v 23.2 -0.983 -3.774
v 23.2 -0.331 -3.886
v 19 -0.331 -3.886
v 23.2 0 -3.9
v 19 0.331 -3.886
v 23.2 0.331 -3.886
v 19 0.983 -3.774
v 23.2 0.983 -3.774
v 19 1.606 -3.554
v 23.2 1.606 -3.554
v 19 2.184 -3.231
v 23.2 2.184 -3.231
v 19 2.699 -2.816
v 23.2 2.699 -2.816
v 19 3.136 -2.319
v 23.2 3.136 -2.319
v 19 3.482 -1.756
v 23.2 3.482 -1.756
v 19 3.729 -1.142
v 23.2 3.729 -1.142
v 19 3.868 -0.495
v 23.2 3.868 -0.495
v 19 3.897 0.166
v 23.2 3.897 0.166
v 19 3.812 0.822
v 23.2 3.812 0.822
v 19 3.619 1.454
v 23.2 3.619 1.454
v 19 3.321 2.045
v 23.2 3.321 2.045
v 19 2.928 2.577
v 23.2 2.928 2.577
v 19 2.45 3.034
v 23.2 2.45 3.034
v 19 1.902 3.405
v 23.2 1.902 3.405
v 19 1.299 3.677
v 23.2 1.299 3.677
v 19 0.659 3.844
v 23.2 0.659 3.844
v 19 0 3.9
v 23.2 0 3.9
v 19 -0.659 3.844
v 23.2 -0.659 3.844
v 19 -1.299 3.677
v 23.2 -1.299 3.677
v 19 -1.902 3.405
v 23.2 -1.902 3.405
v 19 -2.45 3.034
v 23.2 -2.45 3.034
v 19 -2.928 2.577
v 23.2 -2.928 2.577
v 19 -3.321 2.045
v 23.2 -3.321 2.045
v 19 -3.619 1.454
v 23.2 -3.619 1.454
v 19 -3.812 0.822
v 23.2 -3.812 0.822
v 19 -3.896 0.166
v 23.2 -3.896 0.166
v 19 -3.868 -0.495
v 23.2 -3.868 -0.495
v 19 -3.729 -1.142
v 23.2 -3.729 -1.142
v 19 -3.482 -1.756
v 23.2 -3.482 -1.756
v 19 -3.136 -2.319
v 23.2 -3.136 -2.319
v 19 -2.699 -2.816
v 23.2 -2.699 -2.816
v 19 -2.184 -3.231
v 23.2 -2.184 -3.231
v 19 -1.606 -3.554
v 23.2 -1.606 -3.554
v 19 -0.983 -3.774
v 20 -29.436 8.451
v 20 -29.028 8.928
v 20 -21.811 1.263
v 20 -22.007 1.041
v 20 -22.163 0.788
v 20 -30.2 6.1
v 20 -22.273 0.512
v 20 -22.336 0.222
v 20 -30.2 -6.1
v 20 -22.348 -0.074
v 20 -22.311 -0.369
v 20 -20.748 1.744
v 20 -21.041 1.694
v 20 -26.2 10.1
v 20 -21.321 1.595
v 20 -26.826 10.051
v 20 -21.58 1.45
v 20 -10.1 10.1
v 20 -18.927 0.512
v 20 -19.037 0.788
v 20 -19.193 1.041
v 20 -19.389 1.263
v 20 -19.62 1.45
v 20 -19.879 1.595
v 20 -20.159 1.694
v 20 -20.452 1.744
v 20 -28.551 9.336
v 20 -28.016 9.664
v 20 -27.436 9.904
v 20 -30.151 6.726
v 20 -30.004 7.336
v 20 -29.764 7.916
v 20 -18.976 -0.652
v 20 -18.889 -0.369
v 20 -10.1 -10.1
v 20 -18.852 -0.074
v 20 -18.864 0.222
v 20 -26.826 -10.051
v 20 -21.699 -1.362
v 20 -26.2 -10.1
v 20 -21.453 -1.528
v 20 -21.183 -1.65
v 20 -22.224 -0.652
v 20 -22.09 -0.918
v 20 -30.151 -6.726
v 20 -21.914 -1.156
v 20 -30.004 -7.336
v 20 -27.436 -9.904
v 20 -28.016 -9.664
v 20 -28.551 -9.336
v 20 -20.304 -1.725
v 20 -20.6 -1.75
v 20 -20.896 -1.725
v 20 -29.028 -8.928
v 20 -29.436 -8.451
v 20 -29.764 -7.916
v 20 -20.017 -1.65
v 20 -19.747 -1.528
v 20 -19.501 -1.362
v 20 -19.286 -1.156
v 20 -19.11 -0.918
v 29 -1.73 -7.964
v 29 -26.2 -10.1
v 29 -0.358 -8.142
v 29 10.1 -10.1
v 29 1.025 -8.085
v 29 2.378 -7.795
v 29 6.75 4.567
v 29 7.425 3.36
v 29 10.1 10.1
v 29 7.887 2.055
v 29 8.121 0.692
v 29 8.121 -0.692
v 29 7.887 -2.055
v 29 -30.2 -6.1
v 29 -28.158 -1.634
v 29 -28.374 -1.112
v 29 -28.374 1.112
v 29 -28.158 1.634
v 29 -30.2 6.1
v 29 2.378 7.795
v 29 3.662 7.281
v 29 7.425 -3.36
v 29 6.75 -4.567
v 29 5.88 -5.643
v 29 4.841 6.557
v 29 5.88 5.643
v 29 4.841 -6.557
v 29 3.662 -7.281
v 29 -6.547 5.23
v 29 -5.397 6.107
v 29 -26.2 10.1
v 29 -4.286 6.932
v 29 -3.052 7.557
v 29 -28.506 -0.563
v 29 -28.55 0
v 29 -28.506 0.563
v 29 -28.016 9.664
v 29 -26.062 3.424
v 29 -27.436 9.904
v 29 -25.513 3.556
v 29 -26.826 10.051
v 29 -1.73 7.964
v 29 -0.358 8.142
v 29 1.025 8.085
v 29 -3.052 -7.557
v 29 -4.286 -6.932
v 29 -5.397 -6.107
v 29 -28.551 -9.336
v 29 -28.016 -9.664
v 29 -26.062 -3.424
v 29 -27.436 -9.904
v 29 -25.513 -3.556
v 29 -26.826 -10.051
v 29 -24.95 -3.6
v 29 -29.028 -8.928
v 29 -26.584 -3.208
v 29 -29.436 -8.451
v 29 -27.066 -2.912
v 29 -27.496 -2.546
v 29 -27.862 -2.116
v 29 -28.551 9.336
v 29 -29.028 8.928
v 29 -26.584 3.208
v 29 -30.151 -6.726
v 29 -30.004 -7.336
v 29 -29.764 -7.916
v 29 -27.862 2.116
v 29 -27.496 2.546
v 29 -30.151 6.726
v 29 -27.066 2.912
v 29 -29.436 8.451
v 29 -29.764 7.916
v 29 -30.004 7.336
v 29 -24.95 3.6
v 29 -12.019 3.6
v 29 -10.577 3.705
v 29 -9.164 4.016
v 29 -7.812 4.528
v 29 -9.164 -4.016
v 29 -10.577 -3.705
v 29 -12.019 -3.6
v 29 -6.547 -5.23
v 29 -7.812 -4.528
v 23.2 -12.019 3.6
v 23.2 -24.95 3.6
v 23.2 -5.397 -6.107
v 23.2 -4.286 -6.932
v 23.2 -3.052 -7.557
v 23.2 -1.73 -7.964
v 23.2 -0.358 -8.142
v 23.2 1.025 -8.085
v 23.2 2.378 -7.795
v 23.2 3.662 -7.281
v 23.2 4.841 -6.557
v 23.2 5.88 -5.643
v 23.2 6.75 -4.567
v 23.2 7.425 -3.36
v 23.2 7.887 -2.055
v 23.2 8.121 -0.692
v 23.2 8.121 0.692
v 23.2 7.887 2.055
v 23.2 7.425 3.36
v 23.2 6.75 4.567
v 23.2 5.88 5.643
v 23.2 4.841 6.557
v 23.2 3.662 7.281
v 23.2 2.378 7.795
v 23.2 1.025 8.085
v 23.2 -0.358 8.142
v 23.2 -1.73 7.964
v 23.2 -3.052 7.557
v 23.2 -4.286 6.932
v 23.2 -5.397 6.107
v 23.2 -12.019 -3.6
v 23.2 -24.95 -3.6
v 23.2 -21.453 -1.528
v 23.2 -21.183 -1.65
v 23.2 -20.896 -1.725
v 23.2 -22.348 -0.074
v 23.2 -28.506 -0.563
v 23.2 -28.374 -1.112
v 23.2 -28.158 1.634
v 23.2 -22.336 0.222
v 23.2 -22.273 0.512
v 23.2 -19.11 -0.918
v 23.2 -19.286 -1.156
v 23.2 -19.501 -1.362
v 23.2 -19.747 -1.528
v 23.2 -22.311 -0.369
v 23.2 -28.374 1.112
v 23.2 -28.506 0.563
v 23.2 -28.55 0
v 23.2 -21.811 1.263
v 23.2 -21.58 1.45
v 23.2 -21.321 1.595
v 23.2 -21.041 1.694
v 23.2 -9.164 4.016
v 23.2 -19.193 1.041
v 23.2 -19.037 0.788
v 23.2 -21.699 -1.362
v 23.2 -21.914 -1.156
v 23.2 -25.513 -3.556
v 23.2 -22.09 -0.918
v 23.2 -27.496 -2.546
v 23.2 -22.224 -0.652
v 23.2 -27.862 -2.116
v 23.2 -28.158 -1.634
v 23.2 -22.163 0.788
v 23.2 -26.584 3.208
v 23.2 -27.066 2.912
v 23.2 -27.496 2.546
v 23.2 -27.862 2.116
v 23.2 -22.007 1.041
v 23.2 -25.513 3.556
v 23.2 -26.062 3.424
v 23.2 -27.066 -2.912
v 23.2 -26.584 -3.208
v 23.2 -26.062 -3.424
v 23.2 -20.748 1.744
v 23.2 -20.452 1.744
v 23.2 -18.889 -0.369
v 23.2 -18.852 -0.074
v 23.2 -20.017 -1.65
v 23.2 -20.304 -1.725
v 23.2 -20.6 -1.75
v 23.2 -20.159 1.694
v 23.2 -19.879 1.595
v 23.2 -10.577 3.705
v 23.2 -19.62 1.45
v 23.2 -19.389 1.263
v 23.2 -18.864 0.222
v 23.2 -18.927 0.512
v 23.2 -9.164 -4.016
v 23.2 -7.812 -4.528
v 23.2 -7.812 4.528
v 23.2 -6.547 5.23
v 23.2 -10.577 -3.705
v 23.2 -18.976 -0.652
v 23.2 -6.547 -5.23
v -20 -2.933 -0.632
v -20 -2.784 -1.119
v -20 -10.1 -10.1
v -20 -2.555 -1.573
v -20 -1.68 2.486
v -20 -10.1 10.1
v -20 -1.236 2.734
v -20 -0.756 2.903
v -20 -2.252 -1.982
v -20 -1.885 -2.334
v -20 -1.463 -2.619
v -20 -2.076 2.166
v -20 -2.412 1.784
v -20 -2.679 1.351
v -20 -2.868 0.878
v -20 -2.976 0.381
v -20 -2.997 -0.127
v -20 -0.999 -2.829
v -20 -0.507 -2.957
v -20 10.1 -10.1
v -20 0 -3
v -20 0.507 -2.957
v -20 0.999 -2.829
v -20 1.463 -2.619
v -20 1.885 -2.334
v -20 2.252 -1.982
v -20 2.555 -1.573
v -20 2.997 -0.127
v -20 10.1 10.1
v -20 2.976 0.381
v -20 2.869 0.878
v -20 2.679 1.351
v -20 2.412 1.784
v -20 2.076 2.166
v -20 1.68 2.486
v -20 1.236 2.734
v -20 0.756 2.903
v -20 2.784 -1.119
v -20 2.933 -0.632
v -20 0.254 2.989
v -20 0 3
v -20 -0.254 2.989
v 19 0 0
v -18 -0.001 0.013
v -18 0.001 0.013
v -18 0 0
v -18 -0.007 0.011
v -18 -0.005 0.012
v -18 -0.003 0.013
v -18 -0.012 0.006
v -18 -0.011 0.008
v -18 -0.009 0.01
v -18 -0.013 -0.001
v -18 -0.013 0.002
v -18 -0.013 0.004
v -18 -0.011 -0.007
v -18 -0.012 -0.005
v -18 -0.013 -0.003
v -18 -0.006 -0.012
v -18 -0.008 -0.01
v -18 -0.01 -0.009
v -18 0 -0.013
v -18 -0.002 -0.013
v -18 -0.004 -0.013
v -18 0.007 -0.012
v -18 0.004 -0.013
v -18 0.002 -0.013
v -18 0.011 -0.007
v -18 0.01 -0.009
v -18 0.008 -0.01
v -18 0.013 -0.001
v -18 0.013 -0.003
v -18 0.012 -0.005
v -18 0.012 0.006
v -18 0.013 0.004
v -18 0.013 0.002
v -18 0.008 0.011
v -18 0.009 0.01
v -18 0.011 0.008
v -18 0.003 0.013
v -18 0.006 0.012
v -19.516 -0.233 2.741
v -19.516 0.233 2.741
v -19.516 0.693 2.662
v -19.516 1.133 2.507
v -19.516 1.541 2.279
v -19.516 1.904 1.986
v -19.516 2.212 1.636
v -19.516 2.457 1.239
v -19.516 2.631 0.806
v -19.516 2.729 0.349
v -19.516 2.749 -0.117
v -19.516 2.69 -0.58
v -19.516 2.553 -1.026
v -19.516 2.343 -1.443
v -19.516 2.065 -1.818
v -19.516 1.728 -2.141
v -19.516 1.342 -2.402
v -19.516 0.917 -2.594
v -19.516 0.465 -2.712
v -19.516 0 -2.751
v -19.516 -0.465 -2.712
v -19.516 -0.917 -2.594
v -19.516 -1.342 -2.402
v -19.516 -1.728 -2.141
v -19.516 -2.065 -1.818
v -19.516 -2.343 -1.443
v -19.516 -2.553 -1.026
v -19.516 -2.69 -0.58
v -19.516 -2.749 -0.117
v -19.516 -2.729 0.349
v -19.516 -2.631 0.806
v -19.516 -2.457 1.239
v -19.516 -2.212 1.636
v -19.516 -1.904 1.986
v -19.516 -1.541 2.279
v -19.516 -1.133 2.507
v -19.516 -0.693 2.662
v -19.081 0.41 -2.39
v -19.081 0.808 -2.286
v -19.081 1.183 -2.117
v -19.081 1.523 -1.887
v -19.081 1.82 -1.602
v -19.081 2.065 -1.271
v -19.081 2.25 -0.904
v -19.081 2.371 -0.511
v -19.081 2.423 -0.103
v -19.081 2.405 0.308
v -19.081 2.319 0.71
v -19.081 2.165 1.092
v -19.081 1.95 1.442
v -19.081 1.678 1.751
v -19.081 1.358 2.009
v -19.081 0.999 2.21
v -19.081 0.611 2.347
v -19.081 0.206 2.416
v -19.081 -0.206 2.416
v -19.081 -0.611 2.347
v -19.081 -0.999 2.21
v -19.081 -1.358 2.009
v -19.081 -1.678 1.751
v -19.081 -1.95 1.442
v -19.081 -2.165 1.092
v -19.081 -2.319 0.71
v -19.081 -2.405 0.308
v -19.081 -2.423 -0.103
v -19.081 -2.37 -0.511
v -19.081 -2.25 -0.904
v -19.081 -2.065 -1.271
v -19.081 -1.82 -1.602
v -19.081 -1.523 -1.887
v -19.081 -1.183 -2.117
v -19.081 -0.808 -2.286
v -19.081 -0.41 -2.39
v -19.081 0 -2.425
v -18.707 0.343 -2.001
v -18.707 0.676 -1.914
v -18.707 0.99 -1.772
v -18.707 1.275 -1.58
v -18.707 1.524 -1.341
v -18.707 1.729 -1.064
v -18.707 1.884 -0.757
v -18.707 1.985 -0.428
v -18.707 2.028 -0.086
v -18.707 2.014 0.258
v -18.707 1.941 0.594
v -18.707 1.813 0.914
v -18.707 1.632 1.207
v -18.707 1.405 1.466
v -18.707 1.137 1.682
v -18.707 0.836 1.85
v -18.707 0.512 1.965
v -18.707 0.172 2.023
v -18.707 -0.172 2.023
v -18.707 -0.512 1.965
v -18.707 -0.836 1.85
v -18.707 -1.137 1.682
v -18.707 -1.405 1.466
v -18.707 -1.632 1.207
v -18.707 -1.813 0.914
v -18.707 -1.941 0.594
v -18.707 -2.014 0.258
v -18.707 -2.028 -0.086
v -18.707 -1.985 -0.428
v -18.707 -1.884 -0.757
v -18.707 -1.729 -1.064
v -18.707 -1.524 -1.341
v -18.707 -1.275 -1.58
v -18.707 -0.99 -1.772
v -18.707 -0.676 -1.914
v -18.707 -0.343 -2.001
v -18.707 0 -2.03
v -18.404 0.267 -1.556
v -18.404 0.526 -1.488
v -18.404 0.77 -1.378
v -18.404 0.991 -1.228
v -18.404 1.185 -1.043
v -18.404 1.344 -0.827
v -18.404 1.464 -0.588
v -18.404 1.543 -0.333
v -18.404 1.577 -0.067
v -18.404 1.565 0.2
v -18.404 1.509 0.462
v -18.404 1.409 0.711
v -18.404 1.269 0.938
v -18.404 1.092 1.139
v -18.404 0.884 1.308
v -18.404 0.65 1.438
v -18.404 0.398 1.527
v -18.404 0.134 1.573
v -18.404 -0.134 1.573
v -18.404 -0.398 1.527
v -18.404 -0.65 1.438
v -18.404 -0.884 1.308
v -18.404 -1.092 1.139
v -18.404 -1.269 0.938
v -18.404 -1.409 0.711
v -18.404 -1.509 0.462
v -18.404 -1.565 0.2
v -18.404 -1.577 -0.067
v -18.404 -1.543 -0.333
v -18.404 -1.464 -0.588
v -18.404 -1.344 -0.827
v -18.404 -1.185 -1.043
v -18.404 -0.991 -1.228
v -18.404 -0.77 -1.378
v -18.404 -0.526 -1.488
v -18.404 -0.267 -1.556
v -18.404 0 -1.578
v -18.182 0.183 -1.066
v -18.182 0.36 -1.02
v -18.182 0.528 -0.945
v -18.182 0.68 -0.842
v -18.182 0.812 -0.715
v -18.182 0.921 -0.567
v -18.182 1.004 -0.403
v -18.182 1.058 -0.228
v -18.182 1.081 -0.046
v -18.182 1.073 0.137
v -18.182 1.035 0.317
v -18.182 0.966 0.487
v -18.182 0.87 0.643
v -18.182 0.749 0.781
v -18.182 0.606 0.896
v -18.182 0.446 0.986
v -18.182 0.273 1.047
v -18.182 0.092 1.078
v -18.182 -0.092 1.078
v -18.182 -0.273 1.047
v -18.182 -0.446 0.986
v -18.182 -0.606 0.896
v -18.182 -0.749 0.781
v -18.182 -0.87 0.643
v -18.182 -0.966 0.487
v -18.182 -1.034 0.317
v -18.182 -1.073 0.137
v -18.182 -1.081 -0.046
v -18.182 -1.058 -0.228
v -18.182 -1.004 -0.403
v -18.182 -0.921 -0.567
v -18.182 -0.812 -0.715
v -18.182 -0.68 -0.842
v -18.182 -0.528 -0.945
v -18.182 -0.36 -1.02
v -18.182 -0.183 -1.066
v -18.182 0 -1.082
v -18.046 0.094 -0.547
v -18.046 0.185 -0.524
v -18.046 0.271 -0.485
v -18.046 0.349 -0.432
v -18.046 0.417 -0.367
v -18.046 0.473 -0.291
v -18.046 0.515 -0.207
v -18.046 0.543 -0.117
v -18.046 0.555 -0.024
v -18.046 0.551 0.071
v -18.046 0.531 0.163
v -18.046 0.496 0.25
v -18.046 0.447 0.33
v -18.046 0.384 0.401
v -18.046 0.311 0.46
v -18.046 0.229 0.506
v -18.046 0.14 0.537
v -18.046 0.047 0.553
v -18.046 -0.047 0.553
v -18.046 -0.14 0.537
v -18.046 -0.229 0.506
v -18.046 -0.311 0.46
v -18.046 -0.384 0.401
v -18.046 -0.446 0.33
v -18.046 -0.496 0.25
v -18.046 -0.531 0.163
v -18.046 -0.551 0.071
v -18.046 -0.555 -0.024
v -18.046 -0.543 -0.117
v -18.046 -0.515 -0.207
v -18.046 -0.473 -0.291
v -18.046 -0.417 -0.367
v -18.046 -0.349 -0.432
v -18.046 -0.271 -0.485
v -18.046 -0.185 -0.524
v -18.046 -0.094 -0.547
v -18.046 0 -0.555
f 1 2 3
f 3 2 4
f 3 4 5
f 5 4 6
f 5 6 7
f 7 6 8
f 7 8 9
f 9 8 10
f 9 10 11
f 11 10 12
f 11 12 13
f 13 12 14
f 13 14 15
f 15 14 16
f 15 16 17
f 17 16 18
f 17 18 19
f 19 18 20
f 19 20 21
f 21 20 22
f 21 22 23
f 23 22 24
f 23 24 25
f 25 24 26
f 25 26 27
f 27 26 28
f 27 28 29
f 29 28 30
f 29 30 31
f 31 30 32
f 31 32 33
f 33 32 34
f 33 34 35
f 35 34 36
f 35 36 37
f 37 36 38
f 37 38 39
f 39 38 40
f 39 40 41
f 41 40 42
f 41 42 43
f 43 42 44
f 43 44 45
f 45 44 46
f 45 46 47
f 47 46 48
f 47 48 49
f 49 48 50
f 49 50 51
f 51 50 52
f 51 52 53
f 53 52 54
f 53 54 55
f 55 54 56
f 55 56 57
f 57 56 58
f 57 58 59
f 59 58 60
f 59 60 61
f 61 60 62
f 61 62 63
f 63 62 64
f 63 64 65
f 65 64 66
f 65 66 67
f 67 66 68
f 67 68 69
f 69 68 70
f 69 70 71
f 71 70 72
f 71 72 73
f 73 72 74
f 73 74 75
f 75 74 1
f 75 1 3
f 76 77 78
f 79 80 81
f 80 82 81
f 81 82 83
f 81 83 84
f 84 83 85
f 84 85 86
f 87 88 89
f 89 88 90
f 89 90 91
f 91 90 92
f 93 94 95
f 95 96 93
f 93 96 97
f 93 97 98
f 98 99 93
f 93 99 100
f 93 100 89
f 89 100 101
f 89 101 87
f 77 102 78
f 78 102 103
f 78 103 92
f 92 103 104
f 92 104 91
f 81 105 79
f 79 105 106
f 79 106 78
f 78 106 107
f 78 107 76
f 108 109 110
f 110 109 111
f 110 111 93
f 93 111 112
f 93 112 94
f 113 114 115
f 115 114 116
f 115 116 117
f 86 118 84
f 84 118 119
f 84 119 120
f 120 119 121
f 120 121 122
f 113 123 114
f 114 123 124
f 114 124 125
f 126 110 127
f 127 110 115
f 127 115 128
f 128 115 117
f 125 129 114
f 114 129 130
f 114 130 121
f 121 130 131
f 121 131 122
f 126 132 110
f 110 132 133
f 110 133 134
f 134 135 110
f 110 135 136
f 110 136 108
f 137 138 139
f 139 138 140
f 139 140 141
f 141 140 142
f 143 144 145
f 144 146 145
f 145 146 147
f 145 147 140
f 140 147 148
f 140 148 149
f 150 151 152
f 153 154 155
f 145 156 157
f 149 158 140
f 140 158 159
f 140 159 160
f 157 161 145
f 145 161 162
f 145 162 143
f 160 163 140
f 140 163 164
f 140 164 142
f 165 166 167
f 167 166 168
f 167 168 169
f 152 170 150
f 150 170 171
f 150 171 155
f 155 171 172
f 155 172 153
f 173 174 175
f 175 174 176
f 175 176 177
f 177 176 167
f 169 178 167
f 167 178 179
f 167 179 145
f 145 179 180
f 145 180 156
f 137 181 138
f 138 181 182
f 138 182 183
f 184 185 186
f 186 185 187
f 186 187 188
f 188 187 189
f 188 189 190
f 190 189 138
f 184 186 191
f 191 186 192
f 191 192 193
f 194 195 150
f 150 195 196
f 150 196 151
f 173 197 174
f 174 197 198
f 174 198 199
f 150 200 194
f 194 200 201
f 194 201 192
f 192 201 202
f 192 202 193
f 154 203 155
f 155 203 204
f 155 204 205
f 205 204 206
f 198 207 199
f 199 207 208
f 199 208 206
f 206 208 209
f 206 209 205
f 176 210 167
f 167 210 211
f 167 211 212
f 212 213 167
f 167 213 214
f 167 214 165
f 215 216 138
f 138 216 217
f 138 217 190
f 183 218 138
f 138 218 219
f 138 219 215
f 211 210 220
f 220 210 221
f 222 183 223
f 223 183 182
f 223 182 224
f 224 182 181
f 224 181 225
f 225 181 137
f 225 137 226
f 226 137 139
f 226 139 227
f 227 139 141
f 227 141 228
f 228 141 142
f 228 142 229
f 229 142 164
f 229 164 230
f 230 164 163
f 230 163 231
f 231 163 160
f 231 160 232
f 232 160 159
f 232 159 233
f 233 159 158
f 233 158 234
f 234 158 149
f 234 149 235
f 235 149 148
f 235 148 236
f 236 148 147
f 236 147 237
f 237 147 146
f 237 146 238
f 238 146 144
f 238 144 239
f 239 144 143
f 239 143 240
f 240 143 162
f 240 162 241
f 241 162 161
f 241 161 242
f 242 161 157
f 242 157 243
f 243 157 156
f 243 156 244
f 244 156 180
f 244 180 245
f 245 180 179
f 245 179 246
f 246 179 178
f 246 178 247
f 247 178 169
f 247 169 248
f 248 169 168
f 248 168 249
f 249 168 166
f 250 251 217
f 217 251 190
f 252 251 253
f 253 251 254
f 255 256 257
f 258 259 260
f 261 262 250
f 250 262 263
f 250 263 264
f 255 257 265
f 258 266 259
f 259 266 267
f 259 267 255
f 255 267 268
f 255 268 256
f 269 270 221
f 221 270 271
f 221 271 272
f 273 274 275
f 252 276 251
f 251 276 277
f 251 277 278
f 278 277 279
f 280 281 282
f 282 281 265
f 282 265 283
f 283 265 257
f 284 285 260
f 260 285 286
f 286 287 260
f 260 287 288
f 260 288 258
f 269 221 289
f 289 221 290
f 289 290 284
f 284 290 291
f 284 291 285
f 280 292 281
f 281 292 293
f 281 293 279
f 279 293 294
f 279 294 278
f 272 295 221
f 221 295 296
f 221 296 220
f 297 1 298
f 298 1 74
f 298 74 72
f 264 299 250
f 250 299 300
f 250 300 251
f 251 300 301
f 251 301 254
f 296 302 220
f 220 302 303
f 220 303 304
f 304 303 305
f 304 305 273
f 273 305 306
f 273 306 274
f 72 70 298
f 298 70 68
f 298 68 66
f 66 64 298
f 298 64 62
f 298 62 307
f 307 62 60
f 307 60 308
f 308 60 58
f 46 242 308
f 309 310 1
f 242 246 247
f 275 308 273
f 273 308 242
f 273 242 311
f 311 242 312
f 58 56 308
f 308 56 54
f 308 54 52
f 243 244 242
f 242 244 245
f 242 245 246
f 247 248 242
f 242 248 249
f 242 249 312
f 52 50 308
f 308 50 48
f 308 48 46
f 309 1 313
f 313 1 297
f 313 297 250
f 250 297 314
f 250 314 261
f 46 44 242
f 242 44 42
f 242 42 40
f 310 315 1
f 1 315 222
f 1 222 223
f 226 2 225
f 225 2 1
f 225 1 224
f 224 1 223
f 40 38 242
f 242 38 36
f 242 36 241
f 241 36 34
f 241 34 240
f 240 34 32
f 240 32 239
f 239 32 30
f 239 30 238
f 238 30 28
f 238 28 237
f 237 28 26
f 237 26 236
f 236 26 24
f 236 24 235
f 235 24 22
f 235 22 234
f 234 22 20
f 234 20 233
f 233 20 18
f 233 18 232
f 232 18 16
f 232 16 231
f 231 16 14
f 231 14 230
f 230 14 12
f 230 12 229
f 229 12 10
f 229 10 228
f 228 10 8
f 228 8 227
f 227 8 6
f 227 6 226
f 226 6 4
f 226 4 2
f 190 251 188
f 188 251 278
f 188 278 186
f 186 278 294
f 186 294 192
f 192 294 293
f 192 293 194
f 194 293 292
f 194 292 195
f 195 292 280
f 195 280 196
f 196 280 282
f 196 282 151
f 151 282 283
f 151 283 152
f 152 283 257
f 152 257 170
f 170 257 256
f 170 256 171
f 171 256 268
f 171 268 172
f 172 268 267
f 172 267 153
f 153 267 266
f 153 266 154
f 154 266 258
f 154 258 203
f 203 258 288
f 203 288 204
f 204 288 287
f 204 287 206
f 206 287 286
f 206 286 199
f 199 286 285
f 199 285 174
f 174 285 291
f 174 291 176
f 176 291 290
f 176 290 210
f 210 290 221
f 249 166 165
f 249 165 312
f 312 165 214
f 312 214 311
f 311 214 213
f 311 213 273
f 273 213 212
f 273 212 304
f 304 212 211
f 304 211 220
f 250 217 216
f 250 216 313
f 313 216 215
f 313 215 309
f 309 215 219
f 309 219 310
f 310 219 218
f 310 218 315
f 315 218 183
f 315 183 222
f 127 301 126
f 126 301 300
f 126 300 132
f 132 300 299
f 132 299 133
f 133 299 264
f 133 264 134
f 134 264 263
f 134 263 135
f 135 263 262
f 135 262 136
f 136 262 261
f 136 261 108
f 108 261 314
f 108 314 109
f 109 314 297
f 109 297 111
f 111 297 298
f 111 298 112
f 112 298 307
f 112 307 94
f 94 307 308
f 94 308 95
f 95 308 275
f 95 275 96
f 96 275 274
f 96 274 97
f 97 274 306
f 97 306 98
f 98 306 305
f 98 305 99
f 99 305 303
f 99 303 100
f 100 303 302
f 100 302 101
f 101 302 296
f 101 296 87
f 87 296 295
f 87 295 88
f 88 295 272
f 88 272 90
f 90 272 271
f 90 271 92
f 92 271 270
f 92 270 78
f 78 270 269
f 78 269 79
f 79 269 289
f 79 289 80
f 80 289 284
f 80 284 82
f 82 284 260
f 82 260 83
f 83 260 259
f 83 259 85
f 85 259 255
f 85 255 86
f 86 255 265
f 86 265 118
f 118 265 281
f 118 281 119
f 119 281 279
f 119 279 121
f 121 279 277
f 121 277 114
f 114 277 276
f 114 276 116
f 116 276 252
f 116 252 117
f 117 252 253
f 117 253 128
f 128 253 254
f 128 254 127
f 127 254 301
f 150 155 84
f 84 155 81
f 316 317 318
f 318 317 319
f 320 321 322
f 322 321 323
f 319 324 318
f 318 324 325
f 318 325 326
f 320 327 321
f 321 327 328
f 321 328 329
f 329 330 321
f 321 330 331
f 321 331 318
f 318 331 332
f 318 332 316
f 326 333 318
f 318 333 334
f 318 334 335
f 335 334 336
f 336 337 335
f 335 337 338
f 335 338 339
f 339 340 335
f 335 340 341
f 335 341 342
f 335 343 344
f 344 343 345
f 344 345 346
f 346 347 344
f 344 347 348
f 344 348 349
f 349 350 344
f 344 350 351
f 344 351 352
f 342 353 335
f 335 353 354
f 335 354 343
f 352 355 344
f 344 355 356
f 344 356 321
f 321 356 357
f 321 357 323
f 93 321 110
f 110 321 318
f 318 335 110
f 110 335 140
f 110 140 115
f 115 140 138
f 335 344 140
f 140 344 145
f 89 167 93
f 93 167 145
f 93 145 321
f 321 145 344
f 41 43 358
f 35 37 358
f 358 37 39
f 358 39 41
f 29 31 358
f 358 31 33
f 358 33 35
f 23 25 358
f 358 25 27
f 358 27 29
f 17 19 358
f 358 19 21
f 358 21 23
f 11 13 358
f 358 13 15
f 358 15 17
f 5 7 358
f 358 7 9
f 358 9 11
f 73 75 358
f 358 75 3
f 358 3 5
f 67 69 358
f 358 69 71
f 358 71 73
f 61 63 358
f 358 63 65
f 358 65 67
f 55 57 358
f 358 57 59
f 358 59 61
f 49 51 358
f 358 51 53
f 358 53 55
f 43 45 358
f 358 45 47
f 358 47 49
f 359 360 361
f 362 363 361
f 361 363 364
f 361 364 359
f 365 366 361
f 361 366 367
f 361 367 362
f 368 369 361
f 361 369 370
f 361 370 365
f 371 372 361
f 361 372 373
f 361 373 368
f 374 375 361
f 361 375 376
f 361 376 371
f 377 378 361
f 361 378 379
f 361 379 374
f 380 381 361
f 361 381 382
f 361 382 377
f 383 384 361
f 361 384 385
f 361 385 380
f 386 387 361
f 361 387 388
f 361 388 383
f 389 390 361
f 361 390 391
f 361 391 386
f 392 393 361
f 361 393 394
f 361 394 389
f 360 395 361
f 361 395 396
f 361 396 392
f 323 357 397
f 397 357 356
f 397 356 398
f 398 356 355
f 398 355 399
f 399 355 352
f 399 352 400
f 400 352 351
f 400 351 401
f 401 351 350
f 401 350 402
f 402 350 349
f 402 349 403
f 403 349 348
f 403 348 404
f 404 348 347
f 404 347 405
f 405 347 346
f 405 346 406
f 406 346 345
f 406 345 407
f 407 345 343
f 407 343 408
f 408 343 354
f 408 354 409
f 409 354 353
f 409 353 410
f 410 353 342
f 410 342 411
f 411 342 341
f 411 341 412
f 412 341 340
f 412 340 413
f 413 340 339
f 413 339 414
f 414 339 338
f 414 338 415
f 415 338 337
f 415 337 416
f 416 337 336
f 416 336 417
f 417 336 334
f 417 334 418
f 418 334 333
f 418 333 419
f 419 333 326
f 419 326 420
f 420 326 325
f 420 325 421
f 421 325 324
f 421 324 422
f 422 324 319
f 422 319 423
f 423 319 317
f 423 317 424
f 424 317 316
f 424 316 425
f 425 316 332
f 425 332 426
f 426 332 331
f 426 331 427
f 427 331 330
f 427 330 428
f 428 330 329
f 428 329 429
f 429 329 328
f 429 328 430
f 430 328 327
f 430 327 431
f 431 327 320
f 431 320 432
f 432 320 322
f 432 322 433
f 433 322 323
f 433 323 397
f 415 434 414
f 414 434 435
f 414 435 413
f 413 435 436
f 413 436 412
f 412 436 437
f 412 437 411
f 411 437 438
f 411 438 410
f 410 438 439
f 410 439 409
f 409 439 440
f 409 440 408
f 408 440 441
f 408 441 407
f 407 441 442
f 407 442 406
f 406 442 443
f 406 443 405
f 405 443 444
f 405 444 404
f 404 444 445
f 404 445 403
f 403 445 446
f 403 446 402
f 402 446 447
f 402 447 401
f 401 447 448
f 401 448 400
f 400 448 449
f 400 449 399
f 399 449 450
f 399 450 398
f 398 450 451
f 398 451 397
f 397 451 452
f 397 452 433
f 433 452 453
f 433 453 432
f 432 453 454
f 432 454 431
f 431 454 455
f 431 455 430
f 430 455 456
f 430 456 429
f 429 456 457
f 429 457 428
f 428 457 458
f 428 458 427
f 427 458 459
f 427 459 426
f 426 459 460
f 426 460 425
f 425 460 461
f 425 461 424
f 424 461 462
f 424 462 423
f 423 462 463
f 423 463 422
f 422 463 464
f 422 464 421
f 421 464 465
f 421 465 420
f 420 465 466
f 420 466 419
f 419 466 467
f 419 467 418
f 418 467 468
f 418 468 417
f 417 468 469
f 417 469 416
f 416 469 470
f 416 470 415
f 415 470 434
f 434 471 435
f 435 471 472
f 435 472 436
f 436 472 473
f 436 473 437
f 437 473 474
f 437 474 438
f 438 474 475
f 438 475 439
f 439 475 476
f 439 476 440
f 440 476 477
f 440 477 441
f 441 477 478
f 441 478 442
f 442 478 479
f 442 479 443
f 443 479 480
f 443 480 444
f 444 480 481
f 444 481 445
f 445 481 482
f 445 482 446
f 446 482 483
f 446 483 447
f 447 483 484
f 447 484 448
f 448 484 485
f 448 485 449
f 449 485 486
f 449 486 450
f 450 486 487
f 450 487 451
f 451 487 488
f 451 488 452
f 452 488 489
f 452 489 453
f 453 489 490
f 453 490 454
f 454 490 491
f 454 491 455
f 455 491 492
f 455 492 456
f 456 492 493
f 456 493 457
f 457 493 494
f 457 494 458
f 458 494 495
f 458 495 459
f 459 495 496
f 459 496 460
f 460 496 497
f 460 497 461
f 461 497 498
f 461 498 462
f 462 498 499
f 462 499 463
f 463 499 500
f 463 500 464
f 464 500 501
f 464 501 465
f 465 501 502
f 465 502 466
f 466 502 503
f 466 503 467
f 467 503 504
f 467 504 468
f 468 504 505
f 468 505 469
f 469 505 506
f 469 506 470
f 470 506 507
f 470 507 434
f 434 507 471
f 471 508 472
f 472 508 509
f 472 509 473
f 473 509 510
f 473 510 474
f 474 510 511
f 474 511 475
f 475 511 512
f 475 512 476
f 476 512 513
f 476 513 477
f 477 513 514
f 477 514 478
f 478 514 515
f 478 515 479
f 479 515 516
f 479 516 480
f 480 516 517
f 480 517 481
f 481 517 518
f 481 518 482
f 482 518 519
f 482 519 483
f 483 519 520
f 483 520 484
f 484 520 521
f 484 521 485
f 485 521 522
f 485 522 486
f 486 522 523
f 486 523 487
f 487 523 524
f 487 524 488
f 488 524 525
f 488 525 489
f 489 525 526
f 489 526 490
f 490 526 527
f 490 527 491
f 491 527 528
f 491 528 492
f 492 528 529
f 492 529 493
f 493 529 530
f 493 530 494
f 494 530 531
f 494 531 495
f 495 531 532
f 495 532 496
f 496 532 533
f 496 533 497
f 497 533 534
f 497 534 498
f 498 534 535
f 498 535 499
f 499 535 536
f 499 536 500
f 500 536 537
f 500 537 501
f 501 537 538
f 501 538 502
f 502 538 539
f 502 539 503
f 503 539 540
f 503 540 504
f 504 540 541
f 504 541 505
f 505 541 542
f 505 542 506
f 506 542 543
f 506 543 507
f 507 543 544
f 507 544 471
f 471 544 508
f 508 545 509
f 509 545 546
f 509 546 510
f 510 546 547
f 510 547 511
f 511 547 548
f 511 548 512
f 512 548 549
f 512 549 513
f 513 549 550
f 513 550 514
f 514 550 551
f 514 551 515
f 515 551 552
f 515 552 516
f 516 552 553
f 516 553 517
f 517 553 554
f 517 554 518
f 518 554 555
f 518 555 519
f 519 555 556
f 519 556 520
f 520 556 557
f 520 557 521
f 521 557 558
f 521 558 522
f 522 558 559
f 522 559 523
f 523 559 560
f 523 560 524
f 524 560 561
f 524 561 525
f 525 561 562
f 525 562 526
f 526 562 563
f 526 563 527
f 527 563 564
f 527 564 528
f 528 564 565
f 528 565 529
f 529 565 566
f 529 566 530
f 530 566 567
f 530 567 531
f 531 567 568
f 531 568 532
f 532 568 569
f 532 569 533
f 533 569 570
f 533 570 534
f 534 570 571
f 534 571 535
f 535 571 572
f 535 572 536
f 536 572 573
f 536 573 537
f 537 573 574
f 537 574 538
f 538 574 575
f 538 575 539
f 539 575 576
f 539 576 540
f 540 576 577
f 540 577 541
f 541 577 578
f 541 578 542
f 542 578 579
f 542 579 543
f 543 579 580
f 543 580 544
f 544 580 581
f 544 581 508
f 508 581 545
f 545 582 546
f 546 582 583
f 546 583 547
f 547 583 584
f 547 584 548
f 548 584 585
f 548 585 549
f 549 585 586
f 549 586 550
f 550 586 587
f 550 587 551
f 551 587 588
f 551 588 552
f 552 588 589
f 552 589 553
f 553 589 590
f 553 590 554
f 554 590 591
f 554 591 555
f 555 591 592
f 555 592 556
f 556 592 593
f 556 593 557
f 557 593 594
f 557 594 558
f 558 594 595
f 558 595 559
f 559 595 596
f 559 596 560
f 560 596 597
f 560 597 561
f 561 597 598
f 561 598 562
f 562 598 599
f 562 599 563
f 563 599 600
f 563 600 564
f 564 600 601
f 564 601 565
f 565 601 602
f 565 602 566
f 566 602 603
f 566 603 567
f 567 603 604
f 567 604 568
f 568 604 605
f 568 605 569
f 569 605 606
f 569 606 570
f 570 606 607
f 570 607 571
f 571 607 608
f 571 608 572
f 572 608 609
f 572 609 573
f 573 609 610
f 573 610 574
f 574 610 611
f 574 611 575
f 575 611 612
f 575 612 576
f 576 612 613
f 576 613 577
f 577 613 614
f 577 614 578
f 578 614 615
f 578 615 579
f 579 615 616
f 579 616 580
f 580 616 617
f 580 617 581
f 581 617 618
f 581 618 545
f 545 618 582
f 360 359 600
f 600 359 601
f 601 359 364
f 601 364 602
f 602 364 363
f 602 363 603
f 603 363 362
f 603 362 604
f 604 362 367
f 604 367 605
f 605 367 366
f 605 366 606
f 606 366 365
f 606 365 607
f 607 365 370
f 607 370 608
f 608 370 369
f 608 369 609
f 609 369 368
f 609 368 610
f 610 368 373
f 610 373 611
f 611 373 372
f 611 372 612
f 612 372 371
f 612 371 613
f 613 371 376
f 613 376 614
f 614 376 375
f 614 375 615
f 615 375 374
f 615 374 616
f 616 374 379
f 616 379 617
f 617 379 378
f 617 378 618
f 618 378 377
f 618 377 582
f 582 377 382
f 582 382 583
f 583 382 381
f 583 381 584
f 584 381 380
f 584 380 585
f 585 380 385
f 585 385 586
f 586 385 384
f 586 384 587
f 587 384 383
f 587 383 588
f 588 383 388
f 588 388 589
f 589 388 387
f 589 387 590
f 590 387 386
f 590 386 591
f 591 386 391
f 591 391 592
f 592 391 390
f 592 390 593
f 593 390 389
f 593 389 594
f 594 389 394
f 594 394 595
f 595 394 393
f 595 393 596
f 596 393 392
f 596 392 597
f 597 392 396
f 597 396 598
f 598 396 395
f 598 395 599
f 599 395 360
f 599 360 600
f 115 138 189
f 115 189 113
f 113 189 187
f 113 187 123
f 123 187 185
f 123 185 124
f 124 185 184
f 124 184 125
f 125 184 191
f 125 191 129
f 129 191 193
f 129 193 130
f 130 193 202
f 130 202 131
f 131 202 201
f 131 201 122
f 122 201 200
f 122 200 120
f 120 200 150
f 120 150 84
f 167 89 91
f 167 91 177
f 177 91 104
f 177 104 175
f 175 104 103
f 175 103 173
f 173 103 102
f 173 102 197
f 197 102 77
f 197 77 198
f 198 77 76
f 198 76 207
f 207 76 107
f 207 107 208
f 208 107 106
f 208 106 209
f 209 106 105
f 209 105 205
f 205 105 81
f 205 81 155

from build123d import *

# Parameters (mm, degrees)
SKETCH1_W           = 20
SKETCH1_H           = 20
BOSS_EXTRUDE1_DEPTH = 20
SKETCH2_W           = 45
SKETCH2_H           = 70
BOSS_EXTRUDE2_DEPTH = 9
CUT_EXTRUDE1_DEPTH  = 5.8
FILLET1_R           = 3.6
FILLET2_R           = 10
SKETCH5_R           = 3.9
CUT_EXTRUDE2_DEPTH  = 51.717354032
CUT_EXTRUDE3_REACH  = 49.639
SKETCH6_R           = 1.75
SKETCH7_W           = 9
SKETCH7_H           = 45
CUT_EXTRUDE4_DEPTH  = 4.8
SKETCH9_W           = 9
SKETCH9_H           = 45
CUT_EXTRUDE5_DEPTH  = 23.8
SKETCH10_W          = 12.5
SKETCH10_H          = 41.4
CUT_EXTRUDE6_DEPTH  = 23.8
SKETCH11_W          = 20
SKETCH11_H          = 1.2
CUT_EXTRUDE7_DEPTH  = 23.8
BOSS_EXTRUDE3_START = 20
SKETCH12_W          = 20
SKETCH12_H          = 20
SKETCH12_R          = 3.9
BOSS_EXTRUDE3_DEPTH = 20
SKETCH13_W          = 20.2
SKETCH13_H          = 20.2
SKETCH13_R          = 3.9
BOSS_EXTRUDE4_DEPTH = 40
SKETCH14_W          = 9
SKETCH14_H          = 20
BOSS_EXTRUDE5_DEPTH = 0.1
SKETCH15_W          = 9
SKETCH15_H          = 40.3
BOSS_EXTRUDE6_DEPTH = 0.1
SKETCH16_W          = 9
SKETCH16_H          = 40.3
BOSS_EXTRUDE7_DEPTH = 0.1
SKETCH17_R          = 4.83091966
BOSS_EXTRUDE8_DEPTH = 39
SKETCH18_R          = 3
CUT_EXTRUDE8_DEPTH  = 2
FILLET3_R           = 3.23
FILLET4_R           = 4


# Some blends are built 0.0001 mm under size
with BuildPart() as part:
    # Sketch1 → Boss-Extrude1 (new body)
    with BuildSketch(Plane(origin=(0, 0, 0), x_dir=(0, 0, -1), z_dir=(1, 0, 0))):
        Rectangle(SKETCH1_W, SKETCH1_H)
    extrude(amount=BOSS_EXTRUDE1_DEPTH)

    # Sketch2 → Boss-Extrude2 (add)
    with BuildSketch(Plane(origin=(20, 0, 0), x_dir=(0, 0, -1), z_dir=(1, 0, 0))):
        Rectangle(SKETCH2_W, SKETCH2_H)
    extrude(amount=BOSS_EXTRUDE2_DEPTH)

    # Sketch4 → Cut-Extrude1 (cut)
    with BuildSketch(Plane(origin=(29, 0, 0), x_dir=(0, 0, -1), z_dir=(1, 0, 0))):
        with BuildLine():
            Line((3.6, -28.55), (-3.6, -28.55))
            Line((-3.6, -28.55), (-3.6, -7.311805523))
            ThreePointArc((-3.6, -7.311805523), (0, 8.15), (3.6, -7.311805523))
            Line((3.6, -7.311805523), (3.6, -28.55))
        make_face()
    extrude(amount=-CUT_EXTRUDE1_DEPTH, mode=Mode.SUBTRACT)

    # Fillet1
    fillet1_edges = [part.edges().sort_by_distance(p)[0] for p in [
        (26.1, -28.55, 3.6),
        (26.1, -28.55, -3.6),
    ]]
    fillet(fillet1_edges, radius=FILLET1_R - 0.0001)  # a hair under: the kernel refuses the full size

    # Fillet2
    fillet2_edges = [part.edges().sort_by_distance(p)[0] for p in [
        (26.1, -7.311805523, 3.6),
        (26.1, -7.311805523, -3.6),
    ]]
    fillet(fillet2_edges, radius=FILLET2_R)

    # Sketch5 → Cut-Extrude2 (cut, through all)
    with BuildSketch(Plane.ZY):
        Circle(SKETCH5_R)
    extrude(amount=-CUT_EXTRUDE2_DEPTH, mode=Mode.SUBTRACT)

    # Sketch6 → Cut-Extrude3 (cut, up to next)
    with BuildSketch(Plane(origin=(23.2, 0, 0), x_dir=(0, 0, -1), z_dir=(1, 0, 0)), mode=Mode.PRIVATE) as cut_extrude3_sk1:
        with Locations((0, -20.6)):
            Circle(SKETCH6_R)
    cut_extrude3_tool1 = extrude(cut_extrude3_sk1.sketch, amount=-CUT_EXTRUDE3_REACH, mode=Mode.PRIVATE) & part.part
    add(cut_extrude3_tool1.solids().sort_by_distance((23.2, -20.6, 0))[0], mode=Mode.SUBTRACT)

    # Sketch7 → Cut-Extrude4 (cut)
    with BuildSketch(Plane.XZ.offset(35)):
        with Locations((24.5, 0)):
            Rectangle(SKETCH7_W, SKETCH7_H)
    extrude(amount=-CUT_EXTRUDE4_DEPTH, mode=Mode.SUBTRACT)

    # Sketch9 → Cut-Extrude5 (cut)
    with BuildSketch(Plane(origin=(0, 35, 0), x_dir=(1, 0, 0), z_dir=(0, 1, 0))):
        with Locations((24.5, 0)):
            Rectangle(SKETCH9_W, SKETCH9_H)
    extrude(amount=-CUT_EXTRUDE5_DEPTH, mode=Mode.SUBTRACT)

    # Sketch10 → Cut-Extrude6 (cut)
    with BuildSketch(Plane.ZY.offset(-20)):
        with Locations((-16.25, -9.5)):
            Rectangle(SKETCH10_W, SKETCH10_H)
        with Locations((16.25, -9.5)):
            Rectangle(SKETCH10_W, SKETCH10_H)
    extrude(amount=-CUT_EXTRUDE6_DEPTH, mode=Mode.SUBTRACT)

    # Sketch11 → Cut-Extrude7 (cut)
    with BuildSketch(Plane.ZY.offset(-20)):
        with Locations((0, 10.6)):
            Rectangle(SKETCH11_W, SKETCH11_H)
    extrude(amount=-CUT_EXTRUDE7_DEPTH, mode=Mode.SUBTRACT)

    # Sketch12 → Boss-Extrude3 (add)
    with BuildSketch(Plane.ZY.offset(BOSS_EXTRUDE3_START)):
        Rectangle(SKETCH12_W, SKETCH12_H)
        Circle(SKETCH12_R, mode=Mode.SUBTRACT)
    extrude(amount=-BOSS_EXTRUDE3_DEPTH)

    # Sketch13 → Boss-Extrude4 (add)
    with BuildSketch(Plane.ZY.offset(20)):
        Rectangle(SKETCH13_W, SKETCH13_H)
        Circle(SKETCH13_R, mode=Mode.SUBTRACT)
    extrude(amount=-BOSS_EXTRUDE4_DEPTH)

    # Sketch14 → Boss-Extrude5 (add)
    with BuildSketch(Plane(origin=(0, 10, 0), x_dir=(1, 0, 0), z_dir=(0, 1, 0))):
        with Locations((24.5, 0)):
            Rectangle(SKETCH14_W, SKETCH14_H)
    extrude(amount=BOSS_EXTRUDE5_DEPTH)

    # Sketch15 → Boss-Extrude6 (add)
    with BuildSketch(Plane.XY.offset(10)):
        with Locations((24.5, -10.05)):
            Rectangle(SKETCH15_W, SKETCH15_H)
    extrude(amount=BOSS_EXTRUDE6_DEPTH)

    # Sketch16 → Boss-Extrude7 (add)
    with BuildSketch(Plane(origin=(0, 0, -10), x_dir=(-1, 0, 0), z_dir=(0, 0, -1))):
        with Locations((-24.5, -10.05)):
            Rectangle(SKETCH16_W, SKETCH16_H)
    extrude(amount=BOSS_EXTRUDE7_DEPTH)

    # Sketch17 → Boss-Extrude8 (add)
    with BuildSketch(Plane.ZY.offset(20)):
        Circle(SKETCH17_R)
    extrude(amount=-BOSS_EXTRUDE8_DEPTH)

    # Sketch18 → Cut-Extrude8 (cut)
    with BuildSketch(Plane.ZY.offset(20)):
        Circle(SKETCH18_R)
    extrude(amount=-CUT_EXTRUDE8_DEPTH, mode=Mode.SUBTRACT)

    # Fillet3
    # the kernel refuses this fillet: 3.23 mm, written as the material it adds along each edge
    with BuildSketch(Plane(origin=(-18, 0, 0), x_dir=(0, 0, 1), z_dir=(0, -1, 0))) as fillet3_piece_1:
        with BuildLine():
            CenterArc((0.013363095, 3.23), FILLET3_R, 270, 67.616447755)
            Line((0.013363095, 0), (0.013363095, -0.0646))
            Line((0.013363095, -0.0646), (3, -0.0646))
            Line((3, -0.0646), (3.0646, 0))
            ThreePointArc((3.0646, 0), (3.0646, 1), (3.059732738, 1.9754))
            Line((3.059732738, 1.9754), (3, 2))
        make_face()
    revolve(axis=Axis((-18, 0, 0), (-1, 0, 0)))

    # Fillet4
    fillet4_edges = [part.edges().sort_by_distance(p)[0] for p in [
        (24.5, -30.2, 10.1),
        (24.5, -30.2, -10.1),
    ]]
    fillet(fillet4_edges, radius=FILLET4_R)


solid = part.part
